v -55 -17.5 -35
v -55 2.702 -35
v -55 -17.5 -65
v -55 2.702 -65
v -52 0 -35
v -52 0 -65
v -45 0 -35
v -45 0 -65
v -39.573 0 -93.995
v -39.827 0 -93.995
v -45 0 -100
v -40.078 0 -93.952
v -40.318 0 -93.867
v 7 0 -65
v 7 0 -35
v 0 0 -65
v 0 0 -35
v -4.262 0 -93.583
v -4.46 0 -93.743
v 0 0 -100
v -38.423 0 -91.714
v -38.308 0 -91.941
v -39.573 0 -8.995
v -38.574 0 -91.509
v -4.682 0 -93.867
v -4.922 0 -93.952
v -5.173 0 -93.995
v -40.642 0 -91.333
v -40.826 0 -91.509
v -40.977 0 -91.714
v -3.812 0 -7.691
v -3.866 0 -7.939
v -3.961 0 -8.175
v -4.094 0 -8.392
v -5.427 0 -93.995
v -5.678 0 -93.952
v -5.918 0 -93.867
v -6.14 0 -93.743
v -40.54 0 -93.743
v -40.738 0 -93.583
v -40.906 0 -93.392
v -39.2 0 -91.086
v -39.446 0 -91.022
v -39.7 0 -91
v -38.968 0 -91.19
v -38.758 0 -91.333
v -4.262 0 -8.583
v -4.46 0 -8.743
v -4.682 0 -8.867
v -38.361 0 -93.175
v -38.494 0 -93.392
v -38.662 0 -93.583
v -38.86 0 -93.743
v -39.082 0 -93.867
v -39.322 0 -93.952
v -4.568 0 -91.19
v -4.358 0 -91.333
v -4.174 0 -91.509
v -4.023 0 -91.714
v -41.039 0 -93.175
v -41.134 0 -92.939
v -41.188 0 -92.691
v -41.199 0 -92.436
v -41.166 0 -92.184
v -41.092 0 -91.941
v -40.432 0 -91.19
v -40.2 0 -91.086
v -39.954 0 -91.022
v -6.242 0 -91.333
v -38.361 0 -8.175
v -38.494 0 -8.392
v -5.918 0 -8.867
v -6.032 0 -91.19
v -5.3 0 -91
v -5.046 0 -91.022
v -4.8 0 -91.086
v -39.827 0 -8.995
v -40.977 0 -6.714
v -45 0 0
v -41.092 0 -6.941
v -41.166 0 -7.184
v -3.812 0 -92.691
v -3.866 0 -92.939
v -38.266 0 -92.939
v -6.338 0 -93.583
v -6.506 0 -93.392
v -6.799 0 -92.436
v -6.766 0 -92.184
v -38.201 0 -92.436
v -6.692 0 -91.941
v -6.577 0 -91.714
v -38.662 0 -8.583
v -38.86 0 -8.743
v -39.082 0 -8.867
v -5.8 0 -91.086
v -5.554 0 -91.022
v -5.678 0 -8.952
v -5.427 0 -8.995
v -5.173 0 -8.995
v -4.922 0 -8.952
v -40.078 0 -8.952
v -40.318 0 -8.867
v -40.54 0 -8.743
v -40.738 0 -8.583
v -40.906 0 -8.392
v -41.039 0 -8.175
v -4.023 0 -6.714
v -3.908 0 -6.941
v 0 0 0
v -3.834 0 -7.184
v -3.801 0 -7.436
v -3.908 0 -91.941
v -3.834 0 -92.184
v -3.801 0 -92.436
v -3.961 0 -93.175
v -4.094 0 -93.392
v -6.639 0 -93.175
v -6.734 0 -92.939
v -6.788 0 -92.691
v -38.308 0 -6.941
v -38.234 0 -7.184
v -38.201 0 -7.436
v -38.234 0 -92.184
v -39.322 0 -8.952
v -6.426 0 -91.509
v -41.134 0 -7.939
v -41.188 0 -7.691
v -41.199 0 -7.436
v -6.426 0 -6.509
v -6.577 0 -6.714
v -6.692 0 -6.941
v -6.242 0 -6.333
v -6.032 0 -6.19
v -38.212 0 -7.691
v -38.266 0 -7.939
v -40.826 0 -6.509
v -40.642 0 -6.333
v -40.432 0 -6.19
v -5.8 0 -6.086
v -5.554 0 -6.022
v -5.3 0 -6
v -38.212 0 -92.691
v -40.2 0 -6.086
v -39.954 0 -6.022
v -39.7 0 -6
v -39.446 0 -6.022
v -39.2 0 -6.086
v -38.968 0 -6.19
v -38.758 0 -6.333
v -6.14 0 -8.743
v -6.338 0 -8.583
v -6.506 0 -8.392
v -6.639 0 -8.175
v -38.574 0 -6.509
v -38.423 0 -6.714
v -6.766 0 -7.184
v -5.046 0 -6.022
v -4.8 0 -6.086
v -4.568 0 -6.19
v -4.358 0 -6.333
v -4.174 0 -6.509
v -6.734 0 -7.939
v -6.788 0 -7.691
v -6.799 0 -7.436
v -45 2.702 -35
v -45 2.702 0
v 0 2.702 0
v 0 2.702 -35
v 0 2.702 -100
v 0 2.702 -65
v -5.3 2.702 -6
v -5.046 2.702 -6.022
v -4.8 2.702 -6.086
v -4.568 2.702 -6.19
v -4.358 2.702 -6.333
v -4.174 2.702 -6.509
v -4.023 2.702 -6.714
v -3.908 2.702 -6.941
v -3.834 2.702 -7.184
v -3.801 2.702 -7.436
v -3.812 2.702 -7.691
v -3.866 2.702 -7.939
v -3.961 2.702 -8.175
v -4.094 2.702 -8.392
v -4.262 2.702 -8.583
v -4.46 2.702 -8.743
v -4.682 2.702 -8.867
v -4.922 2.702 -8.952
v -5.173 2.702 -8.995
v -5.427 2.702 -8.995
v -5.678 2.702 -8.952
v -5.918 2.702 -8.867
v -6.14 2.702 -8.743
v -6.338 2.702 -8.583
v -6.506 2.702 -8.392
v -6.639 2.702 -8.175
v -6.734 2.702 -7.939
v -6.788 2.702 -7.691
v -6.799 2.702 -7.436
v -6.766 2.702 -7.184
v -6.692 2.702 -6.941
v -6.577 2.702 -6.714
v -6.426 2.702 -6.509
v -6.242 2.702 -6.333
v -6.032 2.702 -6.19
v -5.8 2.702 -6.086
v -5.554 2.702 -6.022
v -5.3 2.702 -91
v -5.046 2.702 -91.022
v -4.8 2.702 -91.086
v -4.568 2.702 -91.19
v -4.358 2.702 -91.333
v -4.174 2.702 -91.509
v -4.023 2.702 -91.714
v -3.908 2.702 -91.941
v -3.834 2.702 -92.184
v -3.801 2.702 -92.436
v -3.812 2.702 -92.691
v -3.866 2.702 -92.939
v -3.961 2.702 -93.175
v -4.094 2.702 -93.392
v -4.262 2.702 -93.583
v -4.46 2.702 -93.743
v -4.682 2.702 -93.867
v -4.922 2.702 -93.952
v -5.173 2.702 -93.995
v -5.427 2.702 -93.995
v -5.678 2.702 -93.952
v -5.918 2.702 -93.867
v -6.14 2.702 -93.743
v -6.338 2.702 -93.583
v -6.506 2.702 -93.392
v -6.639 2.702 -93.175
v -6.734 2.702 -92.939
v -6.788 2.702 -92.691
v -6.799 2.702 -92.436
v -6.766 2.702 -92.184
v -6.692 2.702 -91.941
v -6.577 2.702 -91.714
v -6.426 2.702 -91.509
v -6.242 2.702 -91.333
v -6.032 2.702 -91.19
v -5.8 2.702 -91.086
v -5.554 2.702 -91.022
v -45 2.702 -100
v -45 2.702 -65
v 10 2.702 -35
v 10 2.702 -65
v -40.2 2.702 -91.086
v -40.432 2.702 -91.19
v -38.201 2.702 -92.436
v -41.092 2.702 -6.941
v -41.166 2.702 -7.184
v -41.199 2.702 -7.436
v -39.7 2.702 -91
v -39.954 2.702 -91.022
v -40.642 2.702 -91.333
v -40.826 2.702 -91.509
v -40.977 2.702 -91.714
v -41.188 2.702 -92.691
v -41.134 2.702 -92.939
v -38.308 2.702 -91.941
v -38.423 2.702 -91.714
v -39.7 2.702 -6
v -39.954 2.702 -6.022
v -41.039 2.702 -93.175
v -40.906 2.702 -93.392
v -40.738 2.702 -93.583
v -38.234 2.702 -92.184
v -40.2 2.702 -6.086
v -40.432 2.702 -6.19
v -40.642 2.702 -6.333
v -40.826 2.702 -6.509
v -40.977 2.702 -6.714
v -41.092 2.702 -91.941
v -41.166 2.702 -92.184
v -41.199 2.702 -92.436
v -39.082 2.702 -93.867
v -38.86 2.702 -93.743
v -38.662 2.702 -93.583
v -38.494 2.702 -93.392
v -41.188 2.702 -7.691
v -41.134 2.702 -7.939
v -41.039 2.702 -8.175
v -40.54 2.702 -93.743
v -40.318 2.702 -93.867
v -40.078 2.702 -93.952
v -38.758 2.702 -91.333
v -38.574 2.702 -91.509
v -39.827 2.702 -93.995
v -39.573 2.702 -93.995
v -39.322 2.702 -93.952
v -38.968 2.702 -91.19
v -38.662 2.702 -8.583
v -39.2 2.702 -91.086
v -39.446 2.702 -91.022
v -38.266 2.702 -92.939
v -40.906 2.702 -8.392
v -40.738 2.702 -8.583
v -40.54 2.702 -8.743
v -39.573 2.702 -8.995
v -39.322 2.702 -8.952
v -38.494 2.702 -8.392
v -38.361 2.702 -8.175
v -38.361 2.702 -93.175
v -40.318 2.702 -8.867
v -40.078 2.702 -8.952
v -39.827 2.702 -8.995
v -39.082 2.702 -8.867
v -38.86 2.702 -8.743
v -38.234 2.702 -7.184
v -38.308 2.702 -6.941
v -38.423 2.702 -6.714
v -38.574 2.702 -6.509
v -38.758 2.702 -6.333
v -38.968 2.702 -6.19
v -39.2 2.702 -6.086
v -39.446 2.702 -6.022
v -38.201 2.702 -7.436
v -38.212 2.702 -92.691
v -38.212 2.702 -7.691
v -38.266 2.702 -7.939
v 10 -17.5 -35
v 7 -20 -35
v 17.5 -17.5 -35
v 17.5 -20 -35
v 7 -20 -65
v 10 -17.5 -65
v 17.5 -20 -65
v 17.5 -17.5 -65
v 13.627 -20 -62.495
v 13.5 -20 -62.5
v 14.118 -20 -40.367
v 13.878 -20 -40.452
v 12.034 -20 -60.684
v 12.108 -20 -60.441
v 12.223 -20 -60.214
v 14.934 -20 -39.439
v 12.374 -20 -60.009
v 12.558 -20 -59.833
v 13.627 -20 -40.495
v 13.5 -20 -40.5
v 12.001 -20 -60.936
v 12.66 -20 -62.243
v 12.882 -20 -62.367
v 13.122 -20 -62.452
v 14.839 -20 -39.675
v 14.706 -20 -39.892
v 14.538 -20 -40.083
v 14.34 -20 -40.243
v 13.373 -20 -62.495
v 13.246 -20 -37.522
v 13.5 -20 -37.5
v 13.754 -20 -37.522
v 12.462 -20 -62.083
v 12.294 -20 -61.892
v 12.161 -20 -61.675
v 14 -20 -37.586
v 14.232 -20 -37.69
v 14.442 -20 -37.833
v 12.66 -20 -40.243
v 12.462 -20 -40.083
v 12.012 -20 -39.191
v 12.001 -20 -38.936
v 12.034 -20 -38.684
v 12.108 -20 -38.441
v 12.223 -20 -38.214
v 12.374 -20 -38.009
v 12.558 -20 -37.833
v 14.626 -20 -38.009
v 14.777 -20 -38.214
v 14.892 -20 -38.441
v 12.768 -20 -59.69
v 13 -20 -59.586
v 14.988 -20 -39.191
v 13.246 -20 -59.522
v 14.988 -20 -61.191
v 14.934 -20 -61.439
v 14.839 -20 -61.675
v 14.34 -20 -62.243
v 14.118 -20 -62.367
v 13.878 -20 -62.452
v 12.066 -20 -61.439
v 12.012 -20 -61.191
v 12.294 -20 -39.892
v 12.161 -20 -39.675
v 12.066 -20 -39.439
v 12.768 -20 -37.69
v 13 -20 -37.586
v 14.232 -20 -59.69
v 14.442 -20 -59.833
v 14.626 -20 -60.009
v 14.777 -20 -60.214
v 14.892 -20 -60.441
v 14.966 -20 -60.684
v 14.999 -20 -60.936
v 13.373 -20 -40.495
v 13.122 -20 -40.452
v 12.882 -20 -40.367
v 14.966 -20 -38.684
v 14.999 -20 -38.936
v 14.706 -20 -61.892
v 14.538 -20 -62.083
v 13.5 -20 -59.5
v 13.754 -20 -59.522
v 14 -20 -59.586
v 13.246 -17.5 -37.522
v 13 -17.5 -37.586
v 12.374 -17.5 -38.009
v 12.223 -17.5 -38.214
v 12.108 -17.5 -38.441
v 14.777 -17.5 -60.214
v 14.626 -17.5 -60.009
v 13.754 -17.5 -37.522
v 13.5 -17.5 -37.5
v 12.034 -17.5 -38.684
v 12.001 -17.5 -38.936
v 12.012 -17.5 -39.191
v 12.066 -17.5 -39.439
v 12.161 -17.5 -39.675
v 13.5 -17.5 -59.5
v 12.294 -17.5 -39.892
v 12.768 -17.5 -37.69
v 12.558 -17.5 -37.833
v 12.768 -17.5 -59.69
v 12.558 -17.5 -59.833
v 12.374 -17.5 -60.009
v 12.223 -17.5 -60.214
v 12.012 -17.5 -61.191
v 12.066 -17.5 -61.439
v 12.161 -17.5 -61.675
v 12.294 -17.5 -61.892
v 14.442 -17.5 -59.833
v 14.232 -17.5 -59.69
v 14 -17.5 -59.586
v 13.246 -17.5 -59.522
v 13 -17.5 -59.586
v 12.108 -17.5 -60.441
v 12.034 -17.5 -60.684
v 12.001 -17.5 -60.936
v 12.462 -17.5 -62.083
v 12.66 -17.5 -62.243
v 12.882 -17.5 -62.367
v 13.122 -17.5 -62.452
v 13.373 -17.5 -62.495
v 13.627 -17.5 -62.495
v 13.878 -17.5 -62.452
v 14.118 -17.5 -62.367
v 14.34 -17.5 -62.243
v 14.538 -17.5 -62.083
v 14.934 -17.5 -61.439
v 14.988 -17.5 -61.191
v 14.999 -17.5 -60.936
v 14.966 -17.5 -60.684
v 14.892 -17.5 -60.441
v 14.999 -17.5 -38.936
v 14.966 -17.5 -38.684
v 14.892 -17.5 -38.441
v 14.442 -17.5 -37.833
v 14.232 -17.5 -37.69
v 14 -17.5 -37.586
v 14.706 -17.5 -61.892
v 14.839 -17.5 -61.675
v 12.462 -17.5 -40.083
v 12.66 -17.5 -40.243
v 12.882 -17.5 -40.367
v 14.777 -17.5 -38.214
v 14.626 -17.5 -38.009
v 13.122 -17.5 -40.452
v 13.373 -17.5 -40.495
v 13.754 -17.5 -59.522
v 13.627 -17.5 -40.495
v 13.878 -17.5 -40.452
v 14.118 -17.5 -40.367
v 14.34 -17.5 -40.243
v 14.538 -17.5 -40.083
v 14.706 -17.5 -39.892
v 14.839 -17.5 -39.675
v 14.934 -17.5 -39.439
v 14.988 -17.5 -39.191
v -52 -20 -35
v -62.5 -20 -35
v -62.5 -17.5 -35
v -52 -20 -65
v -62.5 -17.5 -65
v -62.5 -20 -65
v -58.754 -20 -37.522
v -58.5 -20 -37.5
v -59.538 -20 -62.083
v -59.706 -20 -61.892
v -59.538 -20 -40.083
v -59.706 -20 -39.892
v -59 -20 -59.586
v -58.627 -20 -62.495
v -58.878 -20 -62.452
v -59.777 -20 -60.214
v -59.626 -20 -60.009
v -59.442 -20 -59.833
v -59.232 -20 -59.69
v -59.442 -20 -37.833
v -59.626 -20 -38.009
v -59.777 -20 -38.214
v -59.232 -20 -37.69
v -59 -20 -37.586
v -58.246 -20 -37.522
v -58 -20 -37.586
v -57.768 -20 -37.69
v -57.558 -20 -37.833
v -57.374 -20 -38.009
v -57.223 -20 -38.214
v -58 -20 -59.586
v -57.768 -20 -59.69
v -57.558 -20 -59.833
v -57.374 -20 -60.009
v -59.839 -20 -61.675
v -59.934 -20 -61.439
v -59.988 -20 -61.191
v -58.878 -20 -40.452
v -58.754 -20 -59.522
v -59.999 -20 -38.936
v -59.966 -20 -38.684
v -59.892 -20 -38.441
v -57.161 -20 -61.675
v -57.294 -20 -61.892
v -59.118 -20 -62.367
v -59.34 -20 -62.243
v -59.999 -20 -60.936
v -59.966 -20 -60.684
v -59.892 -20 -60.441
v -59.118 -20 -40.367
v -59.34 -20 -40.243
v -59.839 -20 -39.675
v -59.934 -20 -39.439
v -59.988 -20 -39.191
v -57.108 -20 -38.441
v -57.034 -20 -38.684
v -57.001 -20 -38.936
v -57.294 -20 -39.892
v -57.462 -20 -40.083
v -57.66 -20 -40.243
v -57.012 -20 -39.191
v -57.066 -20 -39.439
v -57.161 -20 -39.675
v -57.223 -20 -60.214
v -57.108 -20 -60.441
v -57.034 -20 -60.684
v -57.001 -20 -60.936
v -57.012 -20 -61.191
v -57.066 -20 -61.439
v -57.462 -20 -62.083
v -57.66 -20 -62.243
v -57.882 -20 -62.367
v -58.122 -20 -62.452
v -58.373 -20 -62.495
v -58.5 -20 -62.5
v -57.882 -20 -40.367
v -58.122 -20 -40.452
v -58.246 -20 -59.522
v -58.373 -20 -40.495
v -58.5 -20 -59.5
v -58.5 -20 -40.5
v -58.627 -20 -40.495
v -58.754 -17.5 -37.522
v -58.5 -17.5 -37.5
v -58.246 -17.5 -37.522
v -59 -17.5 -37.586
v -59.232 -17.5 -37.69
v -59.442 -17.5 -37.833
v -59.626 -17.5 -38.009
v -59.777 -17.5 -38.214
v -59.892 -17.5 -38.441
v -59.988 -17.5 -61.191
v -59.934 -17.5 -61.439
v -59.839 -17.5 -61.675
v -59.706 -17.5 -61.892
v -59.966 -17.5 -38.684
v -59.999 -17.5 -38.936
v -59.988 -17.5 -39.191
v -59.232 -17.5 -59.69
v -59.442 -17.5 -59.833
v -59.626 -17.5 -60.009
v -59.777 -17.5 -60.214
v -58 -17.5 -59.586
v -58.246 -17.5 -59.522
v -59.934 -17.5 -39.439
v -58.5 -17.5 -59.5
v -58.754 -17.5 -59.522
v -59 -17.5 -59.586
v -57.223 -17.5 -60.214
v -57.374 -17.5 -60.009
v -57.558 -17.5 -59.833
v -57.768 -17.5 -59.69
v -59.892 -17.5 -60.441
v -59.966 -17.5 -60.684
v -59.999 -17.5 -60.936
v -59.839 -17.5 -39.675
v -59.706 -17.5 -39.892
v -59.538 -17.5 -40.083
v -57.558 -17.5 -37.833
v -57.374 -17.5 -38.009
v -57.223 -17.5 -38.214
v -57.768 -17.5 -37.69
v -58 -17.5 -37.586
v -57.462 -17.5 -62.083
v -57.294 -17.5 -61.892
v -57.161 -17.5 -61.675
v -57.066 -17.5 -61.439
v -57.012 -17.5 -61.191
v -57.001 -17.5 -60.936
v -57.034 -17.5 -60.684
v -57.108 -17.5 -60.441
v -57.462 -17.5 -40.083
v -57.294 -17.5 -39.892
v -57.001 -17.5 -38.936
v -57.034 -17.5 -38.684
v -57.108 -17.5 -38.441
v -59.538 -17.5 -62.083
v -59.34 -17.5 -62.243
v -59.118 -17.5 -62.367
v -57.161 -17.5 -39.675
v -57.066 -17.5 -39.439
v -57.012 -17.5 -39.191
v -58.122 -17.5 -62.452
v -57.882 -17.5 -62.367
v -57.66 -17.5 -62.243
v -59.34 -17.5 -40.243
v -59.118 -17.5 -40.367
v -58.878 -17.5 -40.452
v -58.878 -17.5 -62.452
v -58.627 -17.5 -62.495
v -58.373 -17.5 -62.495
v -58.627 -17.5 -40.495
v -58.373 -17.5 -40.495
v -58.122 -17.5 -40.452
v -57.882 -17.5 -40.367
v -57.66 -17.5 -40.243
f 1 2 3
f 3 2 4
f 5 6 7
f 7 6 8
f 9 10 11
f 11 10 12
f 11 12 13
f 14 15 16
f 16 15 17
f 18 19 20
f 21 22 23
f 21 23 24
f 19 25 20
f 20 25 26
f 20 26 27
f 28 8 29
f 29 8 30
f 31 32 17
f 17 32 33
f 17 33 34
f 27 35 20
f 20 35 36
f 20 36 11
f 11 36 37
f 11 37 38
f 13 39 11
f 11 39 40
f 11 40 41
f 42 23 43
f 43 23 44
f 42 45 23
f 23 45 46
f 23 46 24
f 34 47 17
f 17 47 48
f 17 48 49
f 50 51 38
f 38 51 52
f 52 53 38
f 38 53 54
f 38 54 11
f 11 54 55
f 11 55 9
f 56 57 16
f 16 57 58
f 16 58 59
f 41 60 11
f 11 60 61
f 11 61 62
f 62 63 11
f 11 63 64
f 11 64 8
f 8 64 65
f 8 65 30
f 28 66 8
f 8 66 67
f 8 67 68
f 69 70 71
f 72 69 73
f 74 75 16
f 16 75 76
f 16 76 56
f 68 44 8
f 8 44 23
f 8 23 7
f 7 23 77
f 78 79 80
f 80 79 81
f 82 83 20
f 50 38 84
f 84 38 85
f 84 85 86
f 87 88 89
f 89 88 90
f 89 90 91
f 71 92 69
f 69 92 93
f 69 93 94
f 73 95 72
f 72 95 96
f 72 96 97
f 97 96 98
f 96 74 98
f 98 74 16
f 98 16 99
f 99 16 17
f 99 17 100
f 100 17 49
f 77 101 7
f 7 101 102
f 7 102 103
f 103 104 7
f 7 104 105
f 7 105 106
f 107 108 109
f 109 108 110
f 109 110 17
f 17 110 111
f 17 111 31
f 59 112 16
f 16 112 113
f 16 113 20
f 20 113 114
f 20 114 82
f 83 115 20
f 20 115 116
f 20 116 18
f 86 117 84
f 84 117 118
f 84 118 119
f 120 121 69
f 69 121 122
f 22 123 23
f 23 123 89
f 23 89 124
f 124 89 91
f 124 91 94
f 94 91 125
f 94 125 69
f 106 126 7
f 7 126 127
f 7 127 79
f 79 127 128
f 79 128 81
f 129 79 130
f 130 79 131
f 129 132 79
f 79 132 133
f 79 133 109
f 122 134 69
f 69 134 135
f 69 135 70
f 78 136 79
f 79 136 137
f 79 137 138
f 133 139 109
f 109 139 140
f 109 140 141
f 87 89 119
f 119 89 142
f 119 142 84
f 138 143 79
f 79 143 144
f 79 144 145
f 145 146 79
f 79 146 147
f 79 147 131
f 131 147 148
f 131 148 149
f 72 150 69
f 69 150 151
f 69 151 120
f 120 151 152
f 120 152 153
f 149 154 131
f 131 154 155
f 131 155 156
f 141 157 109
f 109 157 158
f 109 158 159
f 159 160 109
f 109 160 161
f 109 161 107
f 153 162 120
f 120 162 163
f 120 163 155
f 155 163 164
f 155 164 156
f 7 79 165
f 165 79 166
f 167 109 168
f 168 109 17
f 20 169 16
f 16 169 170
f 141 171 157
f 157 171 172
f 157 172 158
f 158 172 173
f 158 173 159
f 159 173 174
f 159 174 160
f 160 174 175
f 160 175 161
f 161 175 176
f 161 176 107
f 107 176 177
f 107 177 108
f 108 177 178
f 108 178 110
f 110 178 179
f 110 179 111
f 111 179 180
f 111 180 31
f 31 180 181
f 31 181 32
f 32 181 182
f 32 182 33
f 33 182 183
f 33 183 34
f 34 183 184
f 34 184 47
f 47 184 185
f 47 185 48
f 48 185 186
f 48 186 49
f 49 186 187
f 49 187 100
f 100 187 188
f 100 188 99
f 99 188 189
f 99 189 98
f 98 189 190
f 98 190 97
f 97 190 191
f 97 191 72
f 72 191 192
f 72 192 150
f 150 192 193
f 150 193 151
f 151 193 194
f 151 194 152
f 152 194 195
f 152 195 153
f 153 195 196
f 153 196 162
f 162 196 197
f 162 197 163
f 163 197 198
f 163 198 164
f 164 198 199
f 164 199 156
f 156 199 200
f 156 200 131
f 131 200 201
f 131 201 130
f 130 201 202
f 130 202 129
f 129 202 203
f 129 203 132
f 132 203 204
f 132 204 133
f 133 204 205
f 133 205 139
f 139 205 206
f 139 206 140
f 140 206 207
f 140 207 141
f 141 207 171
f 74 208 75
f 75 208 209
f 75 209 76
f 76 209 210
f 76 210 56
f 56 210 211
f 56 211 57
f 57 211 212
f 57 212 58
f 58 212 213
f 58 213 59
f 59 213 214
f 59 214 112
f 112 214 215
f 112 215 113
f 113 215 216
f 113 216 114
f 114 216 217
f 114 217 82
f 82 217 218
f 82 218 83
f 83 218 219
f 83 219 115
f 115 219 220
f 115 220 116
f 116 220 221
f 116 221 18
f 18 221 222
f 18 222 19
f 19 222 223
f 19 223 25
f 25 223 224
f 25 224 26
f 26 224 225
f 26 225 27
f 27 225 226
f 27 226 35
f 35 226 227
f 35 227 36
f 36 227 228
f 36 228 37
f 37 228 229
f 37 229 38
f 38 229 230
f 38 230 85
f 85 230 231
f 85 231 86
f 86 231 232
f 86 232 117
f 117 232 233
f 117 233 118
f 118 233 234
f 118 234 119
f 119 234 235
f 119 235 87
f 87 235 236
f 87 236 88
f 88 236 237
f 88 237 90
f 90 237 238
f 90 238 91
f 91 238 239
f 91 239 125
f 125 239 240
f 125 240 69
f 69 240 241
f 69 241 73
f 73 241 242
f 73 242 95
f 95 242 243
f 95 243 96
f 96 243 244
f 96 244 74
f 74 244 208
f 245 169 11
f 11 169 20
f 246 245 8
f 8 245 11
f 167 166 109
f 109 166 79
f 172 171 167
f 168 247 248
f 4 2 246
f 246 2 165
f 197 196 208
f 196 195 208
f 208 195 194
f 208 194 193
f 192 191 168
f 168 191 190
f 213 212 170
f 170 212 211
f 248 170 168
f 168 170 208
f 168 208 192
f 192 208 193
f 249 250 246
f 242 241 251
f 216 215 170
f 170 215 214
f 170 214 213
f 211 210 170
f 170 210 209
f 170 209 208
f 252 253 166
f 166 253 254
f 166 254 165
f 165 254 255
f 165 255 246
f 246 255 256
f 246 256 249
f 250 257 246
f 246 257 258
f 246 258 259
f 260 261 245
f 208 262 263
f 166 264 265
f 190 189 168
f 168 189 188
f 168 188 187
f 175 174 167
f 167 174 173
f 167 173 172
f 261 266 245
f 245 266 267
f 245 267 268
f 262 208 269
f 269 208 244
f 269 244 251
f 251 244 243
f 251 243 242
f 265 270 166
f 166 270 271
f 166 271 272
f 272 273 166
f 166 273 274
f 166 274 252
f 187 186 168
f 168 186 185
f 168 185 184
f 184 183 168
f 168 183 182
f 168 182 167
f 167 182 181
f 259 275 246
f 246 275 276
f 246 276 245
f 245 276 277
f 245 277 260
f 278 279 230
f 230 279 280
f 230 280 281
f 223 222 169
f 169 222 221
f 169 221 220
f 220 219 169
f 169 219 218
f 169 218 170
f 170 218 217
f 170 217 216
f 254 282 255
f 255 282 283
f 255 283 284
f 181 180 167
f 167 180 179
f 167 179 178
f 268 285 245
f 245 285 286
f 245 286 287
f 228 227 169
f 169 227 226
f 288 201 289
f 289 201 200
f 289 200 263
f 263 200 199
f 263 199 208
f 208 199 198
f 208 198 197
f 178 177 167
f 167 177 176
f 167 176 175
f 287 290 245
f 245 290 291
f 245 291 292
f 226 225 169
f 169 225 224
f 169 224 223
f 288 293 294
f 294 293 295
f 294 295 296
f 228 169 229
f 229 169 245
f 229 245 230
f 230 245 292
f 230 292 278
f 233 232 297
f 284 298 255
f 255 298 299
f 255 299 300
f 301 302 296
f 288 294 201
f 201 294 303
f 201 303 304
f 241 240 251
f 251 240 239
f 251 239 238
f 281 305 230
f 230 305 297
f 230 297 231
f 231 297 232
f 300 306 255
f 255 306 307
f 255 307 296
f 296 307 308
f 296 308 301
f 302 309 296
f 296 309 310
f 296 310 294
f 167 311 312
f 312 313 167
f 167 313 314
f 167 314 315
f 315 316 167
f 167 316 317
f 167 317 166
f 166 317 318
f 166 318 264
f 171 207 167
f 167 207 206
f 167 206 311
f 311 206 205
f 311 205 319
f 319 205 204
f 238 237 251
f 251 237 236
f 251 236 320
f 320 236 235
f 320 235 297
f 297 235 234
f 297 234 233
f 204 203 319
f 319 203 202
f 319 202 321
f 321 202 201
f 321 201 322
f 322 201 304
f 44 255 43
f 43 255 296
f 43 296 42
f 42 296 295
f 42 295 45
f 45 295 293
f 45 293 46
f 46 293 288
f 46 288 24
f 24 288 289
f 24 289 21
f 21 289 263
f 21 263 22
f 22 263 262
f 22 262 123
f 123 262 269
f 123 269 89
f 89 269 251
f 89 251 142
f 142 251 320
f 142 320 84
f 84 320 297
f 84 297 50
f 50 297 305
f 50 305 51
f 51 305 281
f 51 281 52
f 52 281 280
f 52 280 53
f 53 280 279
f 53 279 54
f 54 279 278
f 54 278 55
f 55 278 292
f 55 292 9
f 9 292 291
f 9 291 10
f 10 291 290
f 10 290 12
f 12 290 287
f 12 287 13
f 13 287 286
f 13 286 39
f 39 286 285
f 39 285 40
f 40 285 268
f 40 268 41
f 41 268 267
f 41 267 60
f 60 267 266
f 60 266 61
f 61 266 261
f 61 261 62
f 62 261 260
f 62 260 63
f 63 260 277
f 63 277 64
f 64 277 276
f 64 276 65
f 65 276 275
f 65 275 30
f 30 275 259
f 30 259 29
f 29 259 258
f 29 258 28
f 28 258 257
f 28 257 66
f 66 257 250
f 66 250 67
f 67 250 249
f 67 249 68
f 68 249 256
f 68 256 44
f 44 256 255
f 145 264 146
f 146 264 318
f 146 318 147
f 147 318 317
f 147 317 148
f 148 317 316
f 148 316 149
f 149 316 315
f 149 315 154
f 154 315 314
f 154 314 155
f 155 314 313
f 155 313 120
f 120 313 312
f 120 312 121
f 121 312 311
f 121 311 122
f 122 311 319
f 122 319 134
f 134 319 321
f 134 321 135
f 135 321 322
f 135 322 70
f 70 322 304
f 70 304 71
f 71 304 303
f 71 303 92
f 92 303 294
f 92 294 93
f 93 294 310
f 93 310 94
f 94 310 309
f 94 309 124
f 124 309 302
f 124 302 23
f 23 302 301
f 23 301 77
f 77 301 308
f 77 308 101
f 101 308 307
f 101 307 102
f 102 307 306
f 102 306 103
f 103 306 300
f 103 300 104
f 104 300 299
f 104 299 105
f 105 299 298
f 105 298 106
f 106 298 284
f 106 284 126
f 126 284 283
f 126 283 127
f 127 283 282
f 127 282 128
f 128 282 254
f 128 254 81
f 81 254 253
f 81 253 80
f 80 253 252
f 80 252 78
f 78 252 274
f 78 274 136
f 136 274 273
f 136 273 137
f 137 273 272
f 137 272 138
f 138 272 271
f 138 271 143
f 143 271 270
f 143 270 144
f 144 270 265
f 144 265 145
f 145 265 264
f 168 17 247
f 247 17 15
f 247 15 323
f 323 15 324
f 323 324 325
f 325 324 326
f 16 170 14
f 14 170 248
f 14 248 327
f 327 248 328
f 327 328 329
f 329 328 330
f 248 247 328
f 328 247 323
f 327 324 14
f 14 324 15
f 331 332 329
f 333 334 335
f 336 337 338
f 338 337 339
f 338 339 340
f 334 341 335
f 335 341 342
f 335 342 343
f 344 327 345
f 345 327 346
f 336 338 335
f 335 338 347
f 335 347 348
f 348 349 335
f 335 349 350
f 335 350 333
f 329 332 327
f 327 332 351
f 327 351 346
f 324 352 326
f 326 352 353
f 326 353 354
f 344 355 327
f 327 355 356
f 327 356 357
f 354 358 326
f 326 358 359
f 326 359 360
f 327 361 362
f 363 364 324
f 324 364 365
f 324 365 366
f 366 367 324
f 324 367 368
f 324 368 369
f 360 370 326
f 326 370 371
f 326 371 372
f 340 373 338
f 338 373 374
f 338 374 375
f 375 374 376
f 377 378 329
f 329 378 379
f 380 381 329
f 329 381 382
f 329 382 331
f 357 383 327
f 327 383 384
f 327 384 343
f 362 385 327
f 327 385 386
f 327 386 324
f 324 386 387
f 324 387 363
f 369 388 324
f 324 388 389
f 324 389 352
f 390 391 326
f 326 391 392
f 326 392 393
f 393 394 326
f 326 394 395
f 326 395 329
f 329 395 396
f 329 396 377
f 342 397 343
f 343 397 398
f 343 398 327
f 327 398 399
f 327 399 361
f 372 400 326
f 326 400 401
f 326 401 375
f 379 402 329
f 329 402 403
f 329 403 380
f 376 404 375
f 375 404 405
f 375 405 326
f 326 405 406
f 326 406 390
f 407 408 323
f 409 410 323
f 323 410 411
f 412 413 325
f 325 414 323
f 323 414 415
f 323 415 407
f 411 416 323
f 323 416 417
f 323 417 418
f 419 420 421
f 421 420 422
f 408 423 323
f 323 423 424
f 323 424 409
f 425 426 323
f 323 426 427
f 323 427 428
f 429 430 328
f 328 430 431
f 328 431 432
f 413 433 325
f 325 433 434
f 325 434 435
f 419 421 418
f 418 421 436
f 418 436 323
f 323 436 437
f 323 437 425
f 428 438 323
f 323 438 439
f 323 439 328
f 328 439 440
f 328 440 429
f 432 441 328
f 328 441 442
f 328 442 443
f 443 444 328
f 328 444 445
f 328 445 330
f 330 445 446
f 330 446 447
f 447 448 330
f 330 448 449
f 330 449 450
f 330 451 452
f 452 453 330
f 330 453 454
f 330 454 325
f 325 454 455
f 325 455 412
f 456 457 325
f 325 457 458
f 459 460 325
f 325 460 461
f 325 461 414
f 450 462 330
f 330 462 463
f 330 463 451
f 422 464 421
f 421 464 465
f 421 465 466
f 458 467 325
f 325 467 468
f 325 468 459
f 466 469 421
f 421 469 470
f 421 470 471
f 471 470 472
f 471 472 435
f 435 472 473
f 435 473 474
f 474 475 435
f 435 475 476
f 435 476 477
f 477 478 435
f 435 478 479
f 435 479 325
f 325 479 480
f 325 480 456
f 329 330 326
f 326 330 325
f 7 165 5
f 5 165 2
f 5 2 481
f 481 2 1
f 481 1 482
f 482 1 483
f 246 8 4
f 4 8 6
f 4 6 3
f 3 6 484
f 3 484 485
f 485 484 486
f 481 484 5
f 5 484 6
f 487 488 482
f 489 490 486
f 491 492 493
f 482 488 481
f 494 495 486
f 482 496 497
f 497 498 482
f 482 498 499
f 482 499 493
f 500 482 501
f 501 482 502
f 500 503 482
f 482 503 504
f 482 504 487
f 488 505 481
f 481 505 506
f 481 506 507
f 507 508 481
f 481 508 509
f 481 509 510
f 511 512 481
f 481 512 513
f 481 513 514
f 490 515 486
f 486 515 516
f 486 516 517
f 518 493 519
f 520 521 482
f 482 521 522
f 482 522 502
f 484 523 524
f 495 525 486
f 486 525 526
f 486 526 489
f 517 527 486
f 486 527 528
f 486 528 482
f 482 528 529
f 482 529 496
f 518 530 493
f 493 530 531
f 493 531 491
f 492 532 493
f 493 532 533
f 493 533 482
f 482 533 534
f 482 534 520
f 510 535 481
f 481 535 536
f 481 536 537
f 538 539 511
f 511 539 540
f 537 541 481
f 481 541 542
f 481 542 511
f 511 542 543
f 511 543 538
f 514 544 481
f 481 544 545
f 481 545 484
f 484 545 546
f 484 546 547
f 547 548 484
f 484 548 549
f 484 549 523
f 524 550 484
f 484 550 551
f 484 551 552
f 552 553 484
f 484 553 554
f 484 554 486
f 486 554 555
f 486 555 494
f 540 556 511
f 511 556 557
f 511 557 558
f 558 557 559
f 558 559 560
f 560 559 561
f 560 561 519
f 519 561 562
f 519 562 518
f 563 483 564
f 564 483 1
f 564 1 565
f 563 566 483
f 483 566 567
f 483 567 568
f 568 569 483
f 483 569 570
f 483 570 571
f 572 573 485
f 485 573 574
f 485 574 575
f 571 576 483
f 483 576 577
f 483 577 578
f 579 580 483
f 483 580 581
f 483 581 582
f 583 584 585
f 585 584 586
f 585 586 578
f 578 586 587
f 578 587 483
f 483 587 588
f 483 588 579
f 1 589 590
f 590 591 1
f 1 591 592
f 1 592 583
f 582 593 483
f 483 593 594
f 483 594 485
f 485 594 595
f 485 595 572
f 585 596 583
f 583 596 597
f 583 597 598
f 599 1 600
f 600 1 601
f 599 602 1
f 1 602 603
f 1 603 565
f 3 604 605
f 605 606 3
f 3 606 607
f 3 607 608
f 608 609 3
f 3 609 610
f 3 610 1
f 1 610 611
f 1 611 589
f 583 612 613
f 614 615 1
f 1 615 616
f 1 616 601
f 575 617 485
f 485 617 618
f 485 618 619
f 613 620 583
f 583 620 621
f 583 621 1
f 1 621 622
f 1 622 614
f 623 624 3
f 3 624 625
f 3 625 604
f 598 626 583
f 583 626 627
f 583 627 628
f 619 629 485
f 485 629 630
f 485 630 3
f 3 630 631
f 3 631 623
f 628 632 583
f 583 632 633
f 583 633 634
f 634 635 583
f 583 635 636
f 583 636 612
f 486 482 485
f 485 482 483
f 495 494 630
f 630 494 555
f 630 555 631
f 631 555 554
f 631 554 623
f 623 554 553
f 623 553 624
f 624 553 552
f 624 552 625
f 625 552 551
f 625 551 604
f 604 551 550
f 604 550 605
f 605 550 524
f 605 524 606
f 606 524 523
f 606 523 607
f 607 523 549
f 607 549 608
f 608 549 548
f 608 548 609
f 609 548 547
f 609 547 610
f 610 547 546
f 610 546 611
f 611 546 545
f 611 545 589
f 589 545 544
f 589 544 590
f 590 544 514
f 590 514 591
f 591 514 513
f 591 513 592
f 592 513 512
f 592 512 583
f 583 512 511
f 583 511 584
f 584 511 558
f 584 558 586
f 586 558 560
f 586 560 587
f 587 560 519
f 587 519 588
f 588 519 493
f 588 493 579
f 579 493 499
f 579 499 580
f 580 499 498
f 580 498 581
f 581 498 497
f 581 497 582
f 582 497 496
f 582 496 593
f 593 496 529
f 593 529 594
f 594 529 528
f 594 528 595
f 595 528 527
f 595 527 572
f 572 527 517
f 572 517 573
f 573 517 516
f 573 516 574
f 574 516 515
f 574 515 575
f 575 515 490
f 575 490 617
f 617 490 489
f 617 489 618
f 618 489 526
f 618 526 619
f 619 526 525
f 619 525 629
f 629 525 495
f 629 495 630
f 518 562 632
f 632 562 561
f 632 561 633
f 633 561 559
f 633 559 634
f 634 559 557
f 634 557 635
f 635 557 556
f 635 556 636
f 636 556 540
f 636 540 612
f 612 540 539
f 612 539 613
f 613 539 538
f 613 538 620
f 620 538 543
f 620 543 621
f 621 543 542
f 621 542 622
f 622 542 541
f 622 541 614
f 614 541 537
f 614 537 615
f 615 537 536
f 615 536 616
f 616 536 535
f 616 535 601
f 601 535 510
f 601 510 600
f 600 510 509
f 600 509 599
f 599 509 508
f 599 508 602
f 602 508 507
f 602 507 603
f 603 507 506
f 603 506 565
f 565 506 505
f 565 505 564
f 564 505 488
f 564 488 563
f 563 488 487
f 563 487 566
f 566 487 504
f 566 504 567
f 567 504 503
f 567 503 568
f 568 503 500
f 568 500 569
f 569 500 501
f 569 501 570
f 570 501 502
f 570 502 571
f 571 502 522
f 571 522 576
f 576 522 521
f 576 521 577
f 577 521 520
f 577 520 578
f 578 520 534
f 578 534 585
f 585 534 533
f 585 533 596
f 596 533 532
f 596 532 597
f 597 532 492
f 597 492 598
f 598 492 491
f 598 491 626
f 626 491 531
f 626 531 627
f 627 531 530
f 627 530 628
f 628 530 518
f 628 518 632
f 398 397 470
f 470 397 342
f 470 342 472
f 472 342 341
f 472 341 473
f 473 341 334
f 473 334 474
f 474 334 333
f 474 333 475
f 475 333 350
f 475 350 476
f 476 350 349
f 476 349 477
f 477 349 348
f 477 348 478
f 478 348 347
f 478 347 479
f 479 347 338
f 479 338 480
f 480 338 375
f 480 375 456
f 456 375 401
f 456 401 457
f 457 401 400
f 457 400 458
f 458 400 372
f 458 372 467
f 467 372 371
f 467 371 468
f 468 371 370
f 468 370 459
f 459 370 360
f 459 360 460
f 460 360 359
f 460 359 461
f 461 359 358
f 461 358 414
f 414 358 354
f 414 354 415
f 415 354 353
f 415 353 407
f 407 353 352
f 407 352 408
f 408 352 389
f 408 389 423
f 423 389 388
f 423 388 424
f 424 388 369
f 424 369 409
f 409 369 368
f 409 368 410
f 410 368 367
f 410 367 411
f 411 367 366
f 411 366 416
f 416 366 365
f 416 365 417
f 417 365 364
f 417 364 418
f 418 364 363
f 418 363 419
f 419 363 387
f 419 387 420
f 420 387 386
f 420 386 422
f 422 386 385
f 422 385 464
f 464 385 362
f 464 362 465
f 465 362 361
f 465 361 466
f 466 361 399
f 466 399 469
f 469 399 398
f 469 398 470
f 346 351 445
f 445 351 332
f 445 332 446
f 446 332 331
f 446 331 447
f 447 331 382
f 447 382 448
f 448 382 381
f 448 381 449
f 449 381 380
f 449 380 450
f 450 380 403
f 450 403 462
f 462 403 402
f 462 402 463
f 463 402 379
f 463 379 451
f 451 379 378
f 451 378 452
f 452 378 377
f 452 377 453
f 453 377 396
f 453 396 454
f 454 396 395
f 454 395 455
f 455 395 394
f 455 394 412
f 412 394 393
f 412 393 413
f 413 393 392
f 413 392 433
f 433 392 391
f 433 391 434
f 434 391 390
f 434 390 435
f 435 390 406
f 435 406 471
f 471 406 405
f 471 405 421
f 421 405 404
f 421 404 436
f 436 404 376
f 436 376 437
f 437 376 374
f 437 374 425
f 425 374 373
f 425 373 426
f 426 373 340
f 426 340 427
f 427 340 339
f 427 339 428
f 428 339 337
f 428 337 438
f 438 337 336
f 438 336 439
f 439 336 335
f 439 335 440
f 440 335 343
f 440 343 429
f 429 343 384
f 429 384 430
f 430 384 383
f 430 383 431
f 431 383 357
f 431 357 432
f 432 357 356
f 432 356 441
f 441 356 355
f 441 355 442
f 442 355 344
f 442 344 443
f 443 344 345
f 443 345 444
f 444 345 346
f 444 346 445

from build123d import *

# Parameters (mm, degrees)
SKETCH1_W            = 45
SKETCH1_H            = 100
BOSS_EXTRUDE1_DEPTH  = 2.70166895
SKETCH2_R            = 1.5
CUT_EXTRUDE1_DEPTH   = 2.70166895
LPATTERN1_COUNT      = 2
LPATTERN1_PITCH      = 85
LPATTERN1_COUNT_DIR2 = 2
LPATTERN1_PITCH_DIR2 = 34.4
SKETCH4_W            = 30
SKETCH4_H            = 2.70166895
BOSS_EXTRUDE2_DEPTH  = 10
SKETCH6_W            = 3
SKETCH6_H            = 30
BOSS_EXTRUDE3_DEPTH  = 20
SKETCH7_W            = 30
SKETCH7_H            = 2.5
BOSS_EXTRUDE4_DEPTH  = 7.5
SKETCH14_W           = 3
SKETCH14_H           = 30
BOSS_EXTRUDE5_DEPTH  = 20
SKETCH15_W           = 30
SKETCH15_H           = 2.5
BOSS_EXTRUDE6_DEPTH  = 7.5
SKETCH16_R           = 1.5
CUT_EXTRUDE2_DEPTH   = 2.5
LPATTERN2_COUNT      = 2
LPATTERN2_PITCH      = 22
LPATTERN2_COUNT_DIR2 = 2
LPATTERN2_PITCH_DIR2 = 72


with BuildPart() as part:
    # Sketch1 → Boss-Extrude1 (new body)
    with BuildSketch(Plane(origin=(0, 0, 0), x_dir=(1, 0, 0), z_dir=(0, 1, 0))):
        with Locations((-22.5, 50)):
            Rectangle(SKETCH1_W, SKETCH1_H)
    extrude(amount=BOSS_EXTRUDE1_DEPTH)

    # Sketch2 → Cut-Extrude1 (cut)
    with BuildSketch(Plane(origin=(0, 2.70166895, 0), x_dir=(1, 0, 0), z_dir=(0, 1, 0))):
        with Locations(Location((-39.7, 92.5, 0), (0, 0, 270))):
            Circle(SKETCH2_R)
    cut_extrude1 = extrude(amount=-CUT_EXTRUDE1_DEPTH, mode=Mode.SUBTRACT)

    # LPattern1: Cut-Extrude1 2 × 2
    with Locations(*[(j * LPATTERN1_PITCH_DIR2, 0, i * LPATTERN1_PITCH) for i in range(LPATTERN1_COUNT) for j in range(LPATTERN1_COUNT_DIR2) if (i, j) != (0, 0)]):
        add(cut_extrude1, mode=Mode.SUBTRACT)

    # Sketch4 → Boss-Extrude2 (add)
    with BuildSketch(Plane(origin=(0, 0, 0), x_dir=(0, 0, -1), z_dir=(1, 0, 0))):
        with Locations((50, 1.350834475)):
            Rectangle(SKETCH4_W, SKETCH4_H)
    boss_extrude2 = extrude(amount=BOSS_EXTRUDE2_DEPTH)

    # Sketch6 → Boss-Extrude3 (add)
    with BuildSketch(Plane.XZ):
        with Locations((8.5, -50)):
            Rectangle(SKETCH6_W, SKETCH6_H)
    extrude(amount=BOSS_EXTRUDE3_DEPTH)

    # Sketch7 → Boss-Extrude4 (add)
    with BuildSketch(Plane(origin=(10, 0, 0), x_dir=(0, 0, -1), z_dir=(1, 0, 0))):
        with Locations((50, -18.75)):
            Rectangle(SKETCH7_W, SKETCH7_H)
    extrude(amount=BOSS_EXTRUDE4_DEPTH)

    # Mirror2: Boss-Extrude2 across plane
    add(boss_extrude2.mirror(Plane.ZY.offset(22.5)))

    # Sketch14 → Boss-Extrude5 (add)
    with BuildSketch(Plane.XZ):
        with Locations((-53.5, -50)):
            Rectangle(SKETCH14_W, SKETCH14_H)
    extrude(amount=BOSS_EXTRUDE5_DEPTH)

    # Sketch15 → Boss-Extrude6 (add)
    with BuildSketch(Plane.ZY.offset(55)):
        with Locations((-50, -18.75)):
            Rectangle(SKETCH15_W, SKETCH15_H)
    extrude(amount=BOSS_EXTRUDE6_DEPTH)

    # Sketch16 → Cut-Extrude2 (cut)
    with BuildSketch(Plane(origin=(0, -17.5, 0), x_dir=(1, 0, 0), z_dir=(0, 1, 0))):
        with Locations(Location((-58.5, 61, 0), (0, 0, 270))):
            Circle(SKETCH16_R)
    cut_extrude2 = extrude(amount=-CUT_EXTRUDE2_DEPTH, mode=Mode.SUBTRACT)

    # LPattern2: Cut-Extrude2 2 × 2
    with Locations(*[(j * LPATTERN2_PITCH_DIR2, 0, i * LPATTERN2_PITCH) for i in range(LPATTERN2_COUNT) for j in range(LPATTERN2_COUNT_DIR2) if (i, j) != (0, 0)]):
        add(cut_extrude2, mode=Mode.SUBTRACT)


solid = part.part
